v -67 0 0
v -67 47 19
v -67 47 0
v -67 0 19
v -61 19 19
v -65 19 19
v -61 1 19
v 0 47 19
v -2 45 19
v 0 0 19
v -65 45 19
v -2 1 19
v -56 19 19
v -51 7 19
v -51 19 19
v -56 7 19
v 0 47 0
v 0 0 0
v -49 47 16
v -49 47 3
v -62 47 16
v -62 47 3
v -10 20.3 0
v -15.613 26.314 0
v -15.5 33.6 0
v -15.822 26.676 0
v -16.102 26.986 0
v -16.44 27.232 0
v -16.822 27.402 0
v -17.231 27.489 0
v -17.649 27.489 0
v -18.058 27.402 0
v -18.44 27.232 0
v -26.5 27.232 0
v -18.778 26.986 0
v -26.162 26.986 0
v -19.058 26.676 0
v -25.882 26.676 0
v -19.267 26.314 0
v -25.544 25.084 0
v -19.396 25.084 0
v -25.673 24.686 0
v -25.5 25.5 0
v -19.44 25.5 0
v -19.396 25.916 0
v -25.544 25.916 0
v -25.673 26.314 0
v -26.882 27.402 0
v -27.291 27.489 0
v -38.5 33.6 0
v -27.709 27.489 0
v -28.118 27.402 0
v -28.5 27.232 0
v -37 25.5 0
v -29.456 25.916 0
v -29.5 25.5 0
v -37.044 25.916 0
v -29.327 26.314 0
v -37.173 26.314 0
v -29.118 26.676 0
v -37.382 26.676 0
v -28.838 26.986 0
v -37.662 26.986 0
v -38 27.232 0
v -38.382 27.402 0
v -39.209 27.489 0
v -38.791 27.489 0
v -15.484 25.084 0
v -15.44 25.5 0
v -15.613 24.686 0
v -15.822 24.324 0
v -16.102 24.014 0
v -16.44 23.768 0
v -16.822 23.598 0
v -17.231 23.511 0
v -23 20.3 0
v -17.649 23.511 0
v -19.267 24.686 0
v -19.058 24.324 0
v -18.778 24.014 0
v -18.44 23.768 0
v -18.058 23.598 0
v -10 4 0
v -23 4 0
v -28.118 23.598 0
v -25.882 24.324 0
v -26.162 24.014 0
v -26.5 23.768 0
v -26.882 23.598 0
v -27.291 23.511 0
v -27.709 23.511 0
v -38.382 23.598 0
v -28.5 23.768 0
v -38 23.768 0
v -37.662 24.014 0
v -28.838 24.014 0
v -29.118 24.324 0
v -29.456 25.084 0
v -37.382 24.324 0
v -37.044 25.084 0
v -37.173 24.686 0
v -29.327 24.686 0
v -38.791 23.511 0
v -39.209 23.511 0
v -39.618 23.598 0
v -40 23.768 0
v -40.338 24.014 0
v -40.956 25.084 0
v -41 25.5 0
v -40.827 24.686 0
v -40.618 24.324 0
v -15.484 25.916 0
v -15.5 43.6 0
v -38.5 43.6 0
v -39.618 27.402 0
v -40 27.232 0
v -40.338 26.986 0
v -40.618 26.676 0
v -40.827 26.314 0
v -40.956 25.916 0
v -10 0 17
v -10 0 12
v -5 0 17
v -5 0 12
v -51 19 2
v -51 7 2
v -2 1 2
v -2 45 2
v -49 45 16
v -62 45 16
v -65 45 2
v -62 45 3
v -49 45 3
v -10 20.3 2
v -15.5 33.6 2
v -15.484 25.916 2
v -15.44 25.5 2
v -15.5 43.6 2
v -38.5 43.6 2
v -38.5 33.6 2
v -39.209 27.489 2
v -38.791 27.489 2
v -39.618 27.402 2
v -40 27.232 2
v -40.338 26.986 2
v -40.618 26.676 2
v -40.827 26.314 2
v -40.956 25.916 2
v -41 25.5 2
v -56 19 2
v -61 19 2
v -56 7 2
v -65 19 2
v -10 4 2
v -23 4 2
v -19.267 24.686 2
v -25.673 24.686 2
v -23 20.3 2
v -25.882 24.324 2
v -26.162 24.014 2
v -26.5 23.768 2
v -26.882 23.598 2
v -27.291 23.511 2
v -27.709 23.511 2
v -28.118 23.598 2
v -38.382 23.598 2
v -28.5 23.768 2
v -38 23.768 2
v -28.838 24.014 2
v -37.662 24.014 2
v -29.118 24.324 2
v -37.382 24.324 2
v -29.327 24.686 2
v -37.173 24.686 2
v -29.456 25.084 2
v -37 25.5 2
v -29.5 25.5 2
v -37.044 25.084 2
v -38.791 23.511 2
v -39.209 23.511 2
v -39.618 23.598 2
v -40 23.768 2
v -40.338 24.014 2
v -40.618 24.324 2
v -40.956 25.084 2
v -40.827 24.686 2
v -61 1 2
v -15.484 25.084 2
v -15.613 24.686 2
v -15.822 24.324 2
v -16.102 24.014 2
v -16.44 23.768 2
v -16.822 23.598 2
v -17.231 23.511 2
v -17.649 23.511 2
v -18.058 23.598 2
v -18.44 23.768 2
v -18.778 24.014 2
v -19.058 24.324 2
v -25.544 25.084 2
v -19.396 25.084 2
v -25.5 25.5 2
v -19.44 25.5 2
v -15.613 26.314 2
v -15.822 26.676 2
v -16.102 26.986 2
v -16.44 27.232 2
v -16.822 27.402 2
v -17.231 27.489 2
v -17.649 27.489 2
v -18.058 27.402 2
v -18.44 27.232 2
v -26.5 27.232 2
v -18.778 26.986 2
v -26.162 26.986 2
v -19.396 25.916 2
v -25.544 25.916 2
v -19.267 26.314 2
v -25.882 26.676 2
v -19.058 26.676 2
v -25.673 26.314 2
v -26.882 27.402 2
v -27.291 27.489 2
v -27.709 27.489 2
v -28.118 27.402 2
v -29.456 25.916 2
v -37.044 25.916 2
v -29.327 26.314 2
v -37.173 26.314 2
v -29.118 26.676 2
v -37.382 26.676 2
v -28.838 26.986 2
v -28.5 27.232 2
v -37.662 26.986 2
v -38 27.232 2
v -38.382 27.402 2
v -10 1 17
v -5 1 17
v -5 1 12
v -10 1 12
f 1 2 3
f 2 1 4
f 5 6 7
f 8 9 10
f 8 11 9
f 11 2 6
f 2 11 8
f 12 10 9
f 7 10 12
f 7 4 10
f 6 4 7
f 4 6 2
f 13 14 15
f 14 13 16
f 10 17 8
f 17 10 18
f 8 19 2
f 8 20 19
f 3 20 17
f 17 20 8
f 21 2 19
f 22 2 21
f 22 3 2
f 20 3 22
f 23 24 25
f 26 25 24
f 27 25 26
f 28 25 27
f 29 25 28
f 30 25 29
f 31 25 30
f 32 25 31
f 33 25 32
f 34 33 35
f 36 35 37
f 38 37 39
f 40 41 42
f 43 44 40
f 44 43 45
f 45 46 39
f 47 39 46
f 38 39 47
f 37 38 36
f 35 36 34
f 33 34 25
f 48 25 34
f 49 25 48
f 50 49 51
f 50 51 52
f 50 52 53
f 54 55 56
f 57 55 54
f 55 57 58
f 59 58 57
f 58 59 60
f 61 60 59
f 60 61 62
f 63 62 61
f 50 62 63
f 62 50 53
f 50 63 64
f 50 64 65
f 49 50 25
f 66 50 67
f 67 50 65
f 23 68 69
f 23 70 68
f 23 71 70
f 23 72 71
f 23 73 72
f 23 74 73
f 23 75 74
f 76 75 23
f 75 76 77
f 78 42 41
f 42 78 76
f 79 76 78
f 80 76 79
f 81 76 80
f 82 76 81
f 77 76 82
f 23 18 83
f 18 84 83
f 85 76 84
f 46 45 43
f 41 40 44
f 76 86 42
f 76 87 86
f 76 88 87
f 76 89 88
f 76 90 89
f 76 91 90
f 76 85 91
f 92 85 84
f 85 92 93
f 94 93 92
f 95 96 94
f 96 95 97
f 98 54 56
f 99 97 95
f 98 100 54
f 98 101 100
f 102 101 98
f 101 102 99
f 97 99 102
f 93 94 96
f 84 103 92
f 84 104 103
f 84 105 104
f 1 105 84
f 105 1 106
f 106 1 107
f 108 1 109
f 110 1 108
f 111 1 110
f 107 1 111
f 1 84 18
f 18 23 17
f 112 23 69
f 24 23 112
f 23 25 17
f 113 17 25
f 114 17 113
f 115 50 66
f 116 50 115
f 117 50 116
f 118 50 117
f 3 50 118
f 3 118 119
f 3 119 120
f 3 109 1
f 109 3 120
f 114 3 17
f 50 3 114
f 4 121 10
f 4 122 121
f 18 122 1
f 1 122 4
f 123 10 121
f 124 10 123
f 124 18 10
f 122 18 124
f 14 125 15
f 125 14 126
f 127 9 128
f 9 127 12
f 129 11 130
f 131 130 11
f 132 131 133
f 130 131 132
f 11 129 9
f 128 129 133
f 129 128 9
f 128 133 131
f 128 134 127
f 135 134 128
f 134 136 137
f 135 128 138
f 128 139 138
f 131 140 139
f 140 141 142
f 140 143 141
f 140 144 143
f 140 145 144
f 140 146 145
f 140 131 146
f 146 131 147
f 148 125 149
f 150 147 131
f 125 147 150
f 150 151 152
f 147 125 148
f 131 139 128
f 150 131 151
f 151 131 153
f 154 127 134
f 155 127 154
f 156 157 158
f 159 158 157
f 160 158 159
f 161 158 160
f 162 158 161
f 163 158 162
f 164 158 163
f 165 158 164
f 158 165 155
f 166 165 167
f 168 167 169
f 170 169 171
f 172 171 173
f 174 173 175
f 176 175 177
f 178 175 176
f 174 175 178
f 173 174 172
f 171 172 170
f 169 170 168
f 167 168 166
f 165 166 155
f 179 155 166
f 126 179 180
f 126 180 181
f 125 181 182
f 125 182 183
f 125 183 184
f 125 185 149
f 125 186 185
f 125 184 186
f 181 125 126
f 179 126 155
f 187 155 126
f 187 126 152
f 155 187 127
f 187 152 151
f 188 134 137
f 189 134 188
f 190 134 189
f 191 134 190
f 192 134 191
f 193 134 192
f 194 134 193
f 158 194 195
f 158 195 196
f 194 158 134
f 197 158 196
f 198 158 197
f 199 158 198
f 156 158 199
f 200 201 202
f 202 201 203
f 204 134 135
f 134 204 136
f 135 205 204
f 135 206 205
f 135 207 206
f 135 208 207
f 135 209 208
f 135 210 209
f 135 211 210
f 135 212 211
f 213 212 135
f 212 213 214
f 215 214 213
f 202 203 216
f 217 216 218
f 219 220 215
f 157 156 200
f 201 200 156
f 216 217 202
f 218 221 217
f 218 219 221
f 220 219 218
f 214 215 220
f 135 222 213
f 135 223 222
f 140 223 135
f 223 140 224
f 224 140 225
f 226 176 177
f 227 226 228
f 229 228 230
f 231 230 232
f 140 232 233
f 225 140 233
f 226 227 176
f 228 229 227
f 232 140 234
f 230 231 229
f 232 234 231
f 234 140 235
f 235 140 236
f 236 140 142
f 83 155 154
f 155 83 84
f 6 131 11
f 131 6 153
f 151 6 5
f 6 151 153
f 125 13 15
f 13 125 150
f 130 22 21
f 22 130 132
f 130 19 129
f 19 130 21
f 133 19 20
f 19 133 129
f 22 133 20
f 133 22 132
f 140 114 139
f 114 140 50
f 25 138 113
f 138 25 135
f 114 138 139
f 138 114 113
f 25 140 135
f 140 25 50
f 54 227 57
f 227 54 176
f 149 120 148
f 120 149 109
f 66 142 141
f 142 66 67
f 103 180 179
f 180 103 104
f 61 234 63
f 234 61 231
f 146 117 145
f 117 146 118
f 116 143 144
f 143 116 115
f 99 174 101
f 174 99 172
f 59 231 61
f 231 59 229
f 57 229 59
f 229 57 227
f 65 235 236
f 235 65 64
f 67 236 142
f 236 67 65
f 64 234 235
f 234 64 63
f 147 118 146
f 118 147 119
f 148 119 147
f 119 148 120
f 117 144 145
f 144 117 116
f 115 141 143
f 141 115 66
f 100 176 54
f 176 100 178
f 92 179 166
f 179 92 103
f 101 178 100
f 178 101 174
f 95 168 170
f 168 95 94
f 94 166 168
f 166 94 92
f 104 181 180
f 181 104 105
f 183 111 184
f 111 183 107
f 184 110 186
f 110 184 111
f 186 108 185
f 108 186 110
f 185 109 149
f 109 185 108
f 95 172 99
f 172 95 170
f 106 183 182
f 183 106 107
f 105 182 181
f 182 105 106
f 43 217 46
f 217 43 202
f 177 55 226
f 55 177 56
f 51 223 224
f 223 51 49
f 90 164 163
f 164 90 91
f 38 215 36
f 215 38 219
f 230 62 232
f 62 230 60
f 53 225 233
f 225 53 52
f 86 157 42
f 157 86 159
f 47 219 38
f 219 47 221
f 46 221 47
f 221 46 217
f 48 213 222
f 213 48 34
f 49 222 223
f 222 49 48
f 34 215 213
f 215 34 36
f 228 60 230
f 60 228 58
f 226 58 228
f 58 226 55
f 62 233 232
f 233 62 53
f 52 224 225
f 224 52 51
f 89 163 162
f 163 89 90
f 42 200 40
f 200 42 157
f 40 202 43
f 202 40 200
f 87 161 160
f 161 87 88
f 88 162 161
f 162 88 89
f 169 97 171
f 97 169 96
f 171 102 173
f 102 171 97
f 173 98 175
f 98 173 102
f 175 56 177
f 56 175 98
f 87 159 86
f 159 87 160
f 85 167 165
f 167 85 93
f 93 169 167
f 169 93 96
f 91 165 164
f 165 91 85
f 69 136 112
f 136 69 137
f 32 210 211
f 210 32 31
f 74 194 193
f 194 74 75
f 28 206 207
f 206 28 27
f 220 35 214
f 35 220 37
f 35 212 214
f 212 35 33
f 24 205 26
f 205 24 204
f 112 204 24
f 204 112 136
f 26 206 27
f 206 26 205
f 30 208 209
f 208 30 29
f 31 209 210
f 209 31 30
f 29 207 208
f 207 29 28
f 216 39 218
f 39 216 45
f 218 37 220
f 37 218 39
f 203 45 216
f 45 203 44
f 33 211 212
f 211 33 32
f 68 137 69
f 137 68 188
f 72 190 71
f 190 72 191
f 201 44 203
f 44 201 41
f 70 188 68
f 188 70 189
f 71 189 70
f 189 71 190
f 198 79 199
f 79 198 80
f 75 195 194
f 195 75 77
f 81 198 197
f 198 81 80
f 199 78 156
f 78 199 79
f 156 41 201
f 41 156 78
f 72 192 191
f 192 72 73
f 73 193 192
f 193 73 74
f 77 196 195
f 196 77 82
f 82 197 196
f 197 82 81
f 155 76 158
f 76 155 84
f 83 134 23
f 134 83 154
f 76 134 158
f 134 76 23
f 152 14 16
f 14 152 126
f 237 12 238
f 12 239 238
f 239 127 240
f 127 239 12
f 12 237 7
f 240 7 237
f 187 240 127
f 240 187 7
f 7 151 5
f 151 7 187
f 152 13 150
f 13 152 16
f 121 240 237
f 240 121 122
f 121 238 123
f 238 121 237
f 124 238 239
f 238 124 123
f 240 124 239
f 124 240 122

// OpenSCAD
  difference()
 { 
translate([-67,0,0])cube([67,47,19]);
//PCB layer
translate([-51,4,2])cube([49,41,17]);
//power jack space
translate([-65,19,2])cube([16,26,17]);
//power jack hole in wall
translate([-62,25,3])cube([13,26,13]);
//screen
translate([-38.5,33.6,0])cube([23,10,17]);
//button 1
translate([-39,25.5,0])cylinder(r=2,h=2,$fn=30);
translate([-27.5,25.5,0])cylinder(r=2,h=2,$fn=30);
translate([-17.44,25.5,0])cylinder(r=2,h=2,$fn=30);     
//relay
translate([-23,4,0])cube([13,16.3,17]);
//connector for power wires
translate([-43,4,2])cube([21.5,8.5,17]);
//connector for thermal probe
translate([-43,4,2])cube([21.5,8.5,17]);

//runnel for wires 
translate([-59,1,2])cube([57,6,17]);
//runnel for wires 
translate([-61,1,2])cube([5,25,17]);
//runnel for wires 
translate([-10,0,12])cube([5,25,5]);
//runnel for wire2s
//translate([6.5,2,3])cube([7,26,13]);
// screen
//translate([28,2,3])cube([7,26,13])
 } 
   
    
    
  
